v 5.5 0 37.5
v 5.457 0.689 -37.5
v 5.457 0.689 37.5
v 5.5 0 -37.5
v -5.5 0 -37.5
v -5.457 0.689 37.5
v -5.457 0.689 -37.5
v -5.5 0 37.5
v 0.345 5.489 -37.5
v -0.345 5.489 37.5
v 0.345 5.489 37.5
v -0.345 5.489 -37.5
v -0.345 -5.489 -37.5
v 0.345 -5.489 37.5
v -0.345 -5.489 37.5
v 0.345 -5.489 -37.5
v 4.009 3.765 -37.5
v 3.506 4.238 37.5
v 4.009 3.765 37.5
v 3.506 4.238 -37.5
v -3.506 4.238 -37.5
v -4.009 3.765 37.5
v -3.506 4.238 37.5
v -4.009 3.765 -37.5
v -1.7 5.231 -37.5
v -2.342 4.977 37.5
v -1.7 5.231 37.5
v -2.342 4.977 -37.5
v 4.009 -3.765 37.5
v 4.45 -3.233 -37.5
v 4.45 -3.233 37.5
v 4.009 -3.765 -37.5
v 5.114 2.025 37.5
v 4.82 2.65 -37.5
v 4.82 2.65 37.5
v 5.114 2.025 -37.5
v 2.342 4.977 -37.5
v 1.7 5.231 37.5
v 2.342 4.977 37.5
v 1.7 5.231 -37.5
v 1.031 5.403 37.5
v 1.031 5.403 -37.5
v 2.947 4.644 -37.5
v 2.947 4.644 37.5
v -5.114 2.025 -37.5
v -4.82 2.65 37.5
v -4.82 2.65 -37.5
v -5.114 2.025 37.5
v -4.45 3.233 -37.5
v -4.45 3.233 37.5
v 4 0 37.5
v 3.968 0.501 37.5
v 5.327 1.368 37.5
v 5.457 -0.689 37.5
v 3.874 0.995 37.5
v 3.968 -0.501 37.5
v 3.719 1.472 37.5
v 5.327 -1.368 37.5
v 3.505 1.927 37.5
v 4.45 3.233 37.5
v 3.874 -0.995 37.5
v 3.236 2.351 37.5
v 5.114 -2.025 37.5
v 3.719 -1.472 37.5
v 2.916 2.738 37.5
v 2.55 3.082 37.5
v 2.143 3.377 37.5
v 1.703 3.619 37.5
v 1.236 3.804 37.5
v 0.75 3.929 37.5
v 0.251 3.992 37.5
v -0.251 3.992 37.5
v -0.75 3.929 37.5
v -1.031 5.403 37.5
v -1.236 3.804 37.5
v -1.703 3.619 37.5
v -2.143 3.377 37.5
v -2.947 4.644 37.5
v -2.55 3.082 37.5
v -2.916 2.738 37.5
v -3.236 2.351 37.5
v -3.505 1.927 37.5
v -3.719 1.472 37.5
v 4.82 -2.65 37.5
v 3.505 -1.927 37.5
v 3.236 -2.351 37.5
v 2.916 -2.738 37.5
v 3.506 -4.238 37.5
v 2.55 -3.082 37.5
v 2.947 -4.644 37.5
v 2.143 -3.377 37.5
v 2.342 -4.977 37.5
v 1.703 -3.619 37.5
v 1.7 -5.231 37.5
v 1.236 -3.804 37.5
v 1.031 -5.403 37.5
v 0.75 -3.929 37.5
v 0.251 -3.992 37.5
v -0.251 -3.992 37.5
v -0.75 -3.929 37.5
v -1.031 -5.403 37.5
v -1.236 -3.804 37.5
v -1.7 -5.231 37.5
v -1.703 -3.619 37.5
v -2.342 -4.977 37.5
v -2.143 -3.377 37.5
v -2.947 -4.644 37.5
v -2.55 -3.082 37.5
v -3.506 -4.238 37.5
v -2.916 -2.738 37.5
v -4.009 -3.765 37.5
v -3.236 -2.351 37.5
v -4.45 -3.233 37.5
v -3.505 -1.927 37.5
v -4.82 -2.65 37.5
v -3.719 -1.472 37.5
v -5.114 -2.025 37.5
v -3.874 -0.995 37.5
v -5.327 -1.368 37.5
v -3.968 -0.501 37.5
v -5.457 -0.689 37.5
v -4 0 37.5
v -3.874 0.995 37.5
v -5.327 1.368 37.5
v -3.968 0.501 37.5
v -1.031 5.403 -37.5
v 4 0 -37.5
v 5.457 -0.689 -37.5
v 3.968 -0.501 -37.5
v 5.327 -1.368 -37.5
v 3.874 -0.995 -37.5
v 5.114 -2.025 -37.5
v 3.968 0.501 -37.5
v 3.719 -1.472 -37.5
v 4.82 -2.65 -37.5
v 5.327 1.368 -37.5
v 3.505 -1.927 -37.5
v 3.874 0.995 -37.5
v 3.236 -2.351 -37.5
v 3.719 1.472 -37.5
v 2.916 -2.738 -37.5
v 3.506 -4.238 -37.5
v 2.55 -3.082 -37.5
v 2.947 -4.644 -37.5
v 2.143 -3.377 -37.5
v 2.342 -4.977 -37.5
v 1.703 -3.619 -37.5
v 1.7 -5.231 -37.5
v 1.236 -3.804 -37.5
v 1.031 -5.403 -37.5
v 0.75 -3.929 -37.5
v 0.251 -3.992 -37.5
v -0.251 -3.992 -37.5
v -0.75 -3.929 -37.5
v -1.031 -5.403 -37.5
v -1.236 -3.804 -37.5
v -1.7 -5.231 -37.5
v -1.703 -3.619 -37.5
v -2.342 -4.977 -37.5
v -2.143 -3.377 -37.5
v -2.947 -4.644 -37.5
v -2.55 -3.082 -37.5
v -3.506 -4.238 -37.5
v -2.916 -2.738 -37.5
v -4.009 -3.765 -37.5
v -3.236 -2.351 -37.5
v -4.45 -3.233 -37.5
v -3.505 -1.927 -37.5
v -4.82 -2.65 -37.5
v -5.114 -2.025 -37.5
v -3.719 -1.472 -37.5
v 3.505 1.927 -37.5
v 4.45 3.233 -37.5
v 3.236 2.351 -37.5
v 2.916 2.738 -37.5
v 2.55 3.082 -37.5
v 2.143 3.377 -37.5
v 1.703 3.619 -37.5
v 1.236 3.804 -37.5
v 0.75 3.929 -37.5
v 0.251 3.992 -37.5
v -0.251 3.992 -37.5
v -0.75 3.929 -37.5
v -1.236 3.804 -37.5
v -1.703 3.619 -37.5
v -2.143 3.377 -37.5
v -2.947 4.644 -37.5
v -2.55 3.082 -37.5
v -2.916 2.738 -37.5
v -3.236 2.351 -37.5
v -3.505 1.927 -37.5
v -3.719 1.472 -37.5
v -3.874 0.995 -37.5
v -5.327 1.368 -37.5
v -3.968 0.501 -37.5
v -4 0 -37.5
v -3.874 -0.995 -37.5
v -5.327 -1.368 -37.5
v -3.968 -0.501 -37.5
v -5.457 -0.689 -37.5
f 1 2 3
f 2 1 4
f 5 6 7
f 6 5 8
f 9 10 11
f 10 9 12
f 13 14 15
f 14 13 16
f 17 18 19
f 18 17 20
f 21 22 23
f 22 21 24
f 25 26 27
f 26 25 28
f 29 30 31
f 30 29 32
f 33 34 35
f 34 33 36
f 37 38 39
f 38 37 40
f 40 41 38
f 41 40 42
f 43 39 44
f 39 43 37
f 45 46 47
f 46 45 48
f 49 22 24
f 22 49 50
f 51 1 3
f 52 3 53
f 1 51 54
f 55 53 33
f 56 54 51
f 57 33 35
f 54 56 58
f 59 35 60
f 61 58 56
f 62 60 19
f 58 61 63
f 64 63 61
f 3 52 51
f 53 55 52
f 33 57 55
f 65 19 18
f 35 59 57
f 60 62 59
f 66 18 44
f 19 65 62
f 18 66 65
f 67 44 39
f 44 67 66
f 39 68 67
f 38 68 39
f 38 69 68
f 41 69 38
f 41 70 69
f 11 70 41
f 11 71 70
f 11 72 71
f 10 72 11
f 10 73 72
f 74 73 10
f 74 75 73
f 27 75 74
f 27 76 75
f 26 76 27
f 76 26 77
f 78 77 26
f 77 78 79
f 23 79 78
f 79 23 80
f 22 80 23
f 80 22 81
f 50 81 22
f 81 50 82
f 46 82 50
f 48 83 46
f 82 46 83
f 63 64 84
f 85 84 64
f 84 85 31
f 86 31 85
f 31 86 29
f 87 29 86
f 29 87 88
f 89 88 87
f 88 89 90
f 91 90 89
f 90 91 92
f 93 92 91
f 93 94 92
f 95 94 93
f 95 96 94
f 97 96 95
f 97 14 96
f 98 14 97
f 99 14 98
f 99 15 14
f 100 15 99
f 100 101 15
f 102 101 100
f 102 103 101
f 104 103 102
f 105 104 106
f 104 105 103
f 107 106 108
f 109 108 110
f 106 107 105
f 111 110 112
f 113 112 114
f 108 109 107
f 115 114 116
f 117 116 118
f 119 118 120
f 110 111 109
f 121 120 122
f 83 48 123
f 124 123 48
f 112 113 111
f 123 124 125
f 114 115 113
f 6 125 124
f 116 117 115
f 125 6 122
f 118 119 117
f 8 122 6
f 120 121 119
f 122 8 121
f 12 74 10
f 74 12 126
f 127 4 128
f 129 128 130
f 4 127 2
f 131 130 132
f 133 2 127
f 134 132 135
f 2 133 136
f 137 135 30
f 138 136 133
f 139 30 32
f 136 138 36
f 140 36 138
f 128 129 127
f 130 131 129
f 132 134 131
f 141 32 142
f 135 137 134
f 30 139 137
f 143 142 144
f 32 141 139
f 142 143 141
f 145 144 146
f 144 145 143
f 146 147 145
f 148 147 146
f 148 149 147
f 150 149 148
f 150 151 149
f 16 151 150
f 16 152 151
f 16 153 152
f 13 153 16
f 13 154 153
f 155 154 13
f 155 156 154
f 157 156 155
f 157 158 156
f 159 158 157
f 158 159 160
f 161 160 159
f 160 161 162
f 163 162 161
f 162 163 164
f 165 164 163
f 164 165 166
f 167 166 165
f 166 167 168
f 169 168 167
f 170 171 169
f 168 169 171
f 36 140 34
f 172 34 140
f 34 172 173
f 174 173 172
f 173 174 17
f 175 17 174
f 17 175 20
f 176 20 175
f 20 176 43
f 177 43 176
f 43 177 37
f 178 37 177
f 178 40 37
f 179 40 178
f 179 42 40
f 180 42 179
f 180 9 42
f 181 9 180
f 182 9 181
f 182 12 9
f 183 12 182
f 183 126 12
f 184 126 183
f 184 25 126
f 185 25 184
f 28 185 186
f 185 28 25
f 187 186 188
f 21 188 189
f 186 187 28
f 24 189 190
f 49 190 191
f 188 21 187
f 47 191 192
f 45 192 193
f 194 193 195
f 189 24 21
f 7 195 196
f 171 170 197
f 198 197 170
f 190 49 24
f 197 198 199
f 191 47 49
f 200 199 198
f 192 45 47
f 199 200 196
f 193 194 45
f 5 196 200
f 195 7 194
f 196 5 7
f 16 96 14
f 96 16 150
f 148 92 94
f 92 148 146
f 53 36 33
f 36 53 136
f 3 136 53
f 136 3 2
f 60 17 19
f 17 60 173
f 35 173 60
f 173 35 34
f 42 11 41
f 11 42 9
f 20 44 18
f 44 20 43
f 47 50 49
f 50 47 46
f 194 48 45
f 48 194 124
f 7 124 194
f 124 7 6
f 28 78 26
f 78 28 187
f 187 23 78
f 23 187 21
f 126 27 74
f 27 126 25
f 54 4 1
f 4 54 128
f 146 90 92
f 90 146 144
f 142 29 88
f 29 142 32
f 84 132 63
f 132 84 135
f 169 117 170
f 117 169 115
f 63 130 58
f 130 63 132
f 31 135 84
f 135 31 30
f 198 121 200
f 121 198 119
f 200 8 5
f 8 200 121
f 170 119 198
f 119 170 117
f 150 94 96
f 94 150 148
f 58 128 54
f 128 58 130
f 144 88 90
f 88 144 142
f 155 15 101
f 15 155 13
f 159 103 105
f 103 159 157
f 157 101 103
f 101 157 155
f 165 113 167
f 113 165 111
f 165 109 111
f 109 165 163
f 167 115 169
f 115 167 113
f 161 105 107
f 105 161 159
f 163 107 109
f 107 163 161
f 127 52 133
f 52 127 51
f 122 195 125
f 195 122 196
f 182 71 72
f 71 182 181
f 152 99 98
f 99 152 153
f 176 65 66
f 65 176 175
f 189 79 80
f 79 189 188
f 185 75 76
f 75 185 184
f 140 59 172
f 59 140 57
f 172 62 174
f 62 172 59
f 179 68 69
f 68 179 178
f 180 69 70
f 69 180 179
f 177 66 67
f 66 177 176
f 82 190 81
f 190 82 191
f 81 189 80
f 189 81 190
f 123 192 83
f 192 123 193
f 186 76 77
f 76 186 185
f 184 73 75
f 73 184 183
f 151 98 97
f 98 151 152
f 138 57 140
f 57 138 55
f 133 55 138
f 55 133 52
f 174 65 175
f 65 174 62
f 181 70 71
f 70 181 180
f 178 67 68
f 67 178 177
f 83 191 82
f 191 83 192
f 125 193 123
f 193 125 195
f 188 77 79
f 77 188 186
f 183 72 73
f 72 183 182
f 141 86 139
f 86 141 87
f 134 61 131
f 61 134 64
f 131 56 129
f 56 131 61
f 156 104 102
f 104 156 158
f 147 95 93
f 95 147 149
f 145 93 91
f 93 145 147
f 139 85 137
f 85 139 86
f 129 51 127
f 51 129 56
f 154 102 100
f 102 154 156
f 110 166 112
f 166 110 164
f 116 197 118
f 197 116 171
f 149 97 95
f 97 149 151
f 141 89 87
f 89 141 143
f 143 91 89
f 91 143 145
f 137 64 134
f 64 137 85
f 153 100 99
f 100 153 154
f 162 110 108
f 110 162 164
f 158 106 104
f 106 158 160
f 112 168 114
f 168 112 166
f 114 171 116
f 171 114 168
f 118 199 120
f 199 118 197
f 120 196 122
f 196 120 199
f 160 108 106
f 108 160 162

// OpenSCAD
$fn = 50;


difference() {
	union() {
		translate(v = [0, 0, -37.5000000000]) {
			cylinder(h = 75, r = 5.5000000000);
		}
	}
	union() {
		translate(v = [0, 0, -100.0000000000]) {
			cylinder(h = 200, r = 4);
		}
	}
}
